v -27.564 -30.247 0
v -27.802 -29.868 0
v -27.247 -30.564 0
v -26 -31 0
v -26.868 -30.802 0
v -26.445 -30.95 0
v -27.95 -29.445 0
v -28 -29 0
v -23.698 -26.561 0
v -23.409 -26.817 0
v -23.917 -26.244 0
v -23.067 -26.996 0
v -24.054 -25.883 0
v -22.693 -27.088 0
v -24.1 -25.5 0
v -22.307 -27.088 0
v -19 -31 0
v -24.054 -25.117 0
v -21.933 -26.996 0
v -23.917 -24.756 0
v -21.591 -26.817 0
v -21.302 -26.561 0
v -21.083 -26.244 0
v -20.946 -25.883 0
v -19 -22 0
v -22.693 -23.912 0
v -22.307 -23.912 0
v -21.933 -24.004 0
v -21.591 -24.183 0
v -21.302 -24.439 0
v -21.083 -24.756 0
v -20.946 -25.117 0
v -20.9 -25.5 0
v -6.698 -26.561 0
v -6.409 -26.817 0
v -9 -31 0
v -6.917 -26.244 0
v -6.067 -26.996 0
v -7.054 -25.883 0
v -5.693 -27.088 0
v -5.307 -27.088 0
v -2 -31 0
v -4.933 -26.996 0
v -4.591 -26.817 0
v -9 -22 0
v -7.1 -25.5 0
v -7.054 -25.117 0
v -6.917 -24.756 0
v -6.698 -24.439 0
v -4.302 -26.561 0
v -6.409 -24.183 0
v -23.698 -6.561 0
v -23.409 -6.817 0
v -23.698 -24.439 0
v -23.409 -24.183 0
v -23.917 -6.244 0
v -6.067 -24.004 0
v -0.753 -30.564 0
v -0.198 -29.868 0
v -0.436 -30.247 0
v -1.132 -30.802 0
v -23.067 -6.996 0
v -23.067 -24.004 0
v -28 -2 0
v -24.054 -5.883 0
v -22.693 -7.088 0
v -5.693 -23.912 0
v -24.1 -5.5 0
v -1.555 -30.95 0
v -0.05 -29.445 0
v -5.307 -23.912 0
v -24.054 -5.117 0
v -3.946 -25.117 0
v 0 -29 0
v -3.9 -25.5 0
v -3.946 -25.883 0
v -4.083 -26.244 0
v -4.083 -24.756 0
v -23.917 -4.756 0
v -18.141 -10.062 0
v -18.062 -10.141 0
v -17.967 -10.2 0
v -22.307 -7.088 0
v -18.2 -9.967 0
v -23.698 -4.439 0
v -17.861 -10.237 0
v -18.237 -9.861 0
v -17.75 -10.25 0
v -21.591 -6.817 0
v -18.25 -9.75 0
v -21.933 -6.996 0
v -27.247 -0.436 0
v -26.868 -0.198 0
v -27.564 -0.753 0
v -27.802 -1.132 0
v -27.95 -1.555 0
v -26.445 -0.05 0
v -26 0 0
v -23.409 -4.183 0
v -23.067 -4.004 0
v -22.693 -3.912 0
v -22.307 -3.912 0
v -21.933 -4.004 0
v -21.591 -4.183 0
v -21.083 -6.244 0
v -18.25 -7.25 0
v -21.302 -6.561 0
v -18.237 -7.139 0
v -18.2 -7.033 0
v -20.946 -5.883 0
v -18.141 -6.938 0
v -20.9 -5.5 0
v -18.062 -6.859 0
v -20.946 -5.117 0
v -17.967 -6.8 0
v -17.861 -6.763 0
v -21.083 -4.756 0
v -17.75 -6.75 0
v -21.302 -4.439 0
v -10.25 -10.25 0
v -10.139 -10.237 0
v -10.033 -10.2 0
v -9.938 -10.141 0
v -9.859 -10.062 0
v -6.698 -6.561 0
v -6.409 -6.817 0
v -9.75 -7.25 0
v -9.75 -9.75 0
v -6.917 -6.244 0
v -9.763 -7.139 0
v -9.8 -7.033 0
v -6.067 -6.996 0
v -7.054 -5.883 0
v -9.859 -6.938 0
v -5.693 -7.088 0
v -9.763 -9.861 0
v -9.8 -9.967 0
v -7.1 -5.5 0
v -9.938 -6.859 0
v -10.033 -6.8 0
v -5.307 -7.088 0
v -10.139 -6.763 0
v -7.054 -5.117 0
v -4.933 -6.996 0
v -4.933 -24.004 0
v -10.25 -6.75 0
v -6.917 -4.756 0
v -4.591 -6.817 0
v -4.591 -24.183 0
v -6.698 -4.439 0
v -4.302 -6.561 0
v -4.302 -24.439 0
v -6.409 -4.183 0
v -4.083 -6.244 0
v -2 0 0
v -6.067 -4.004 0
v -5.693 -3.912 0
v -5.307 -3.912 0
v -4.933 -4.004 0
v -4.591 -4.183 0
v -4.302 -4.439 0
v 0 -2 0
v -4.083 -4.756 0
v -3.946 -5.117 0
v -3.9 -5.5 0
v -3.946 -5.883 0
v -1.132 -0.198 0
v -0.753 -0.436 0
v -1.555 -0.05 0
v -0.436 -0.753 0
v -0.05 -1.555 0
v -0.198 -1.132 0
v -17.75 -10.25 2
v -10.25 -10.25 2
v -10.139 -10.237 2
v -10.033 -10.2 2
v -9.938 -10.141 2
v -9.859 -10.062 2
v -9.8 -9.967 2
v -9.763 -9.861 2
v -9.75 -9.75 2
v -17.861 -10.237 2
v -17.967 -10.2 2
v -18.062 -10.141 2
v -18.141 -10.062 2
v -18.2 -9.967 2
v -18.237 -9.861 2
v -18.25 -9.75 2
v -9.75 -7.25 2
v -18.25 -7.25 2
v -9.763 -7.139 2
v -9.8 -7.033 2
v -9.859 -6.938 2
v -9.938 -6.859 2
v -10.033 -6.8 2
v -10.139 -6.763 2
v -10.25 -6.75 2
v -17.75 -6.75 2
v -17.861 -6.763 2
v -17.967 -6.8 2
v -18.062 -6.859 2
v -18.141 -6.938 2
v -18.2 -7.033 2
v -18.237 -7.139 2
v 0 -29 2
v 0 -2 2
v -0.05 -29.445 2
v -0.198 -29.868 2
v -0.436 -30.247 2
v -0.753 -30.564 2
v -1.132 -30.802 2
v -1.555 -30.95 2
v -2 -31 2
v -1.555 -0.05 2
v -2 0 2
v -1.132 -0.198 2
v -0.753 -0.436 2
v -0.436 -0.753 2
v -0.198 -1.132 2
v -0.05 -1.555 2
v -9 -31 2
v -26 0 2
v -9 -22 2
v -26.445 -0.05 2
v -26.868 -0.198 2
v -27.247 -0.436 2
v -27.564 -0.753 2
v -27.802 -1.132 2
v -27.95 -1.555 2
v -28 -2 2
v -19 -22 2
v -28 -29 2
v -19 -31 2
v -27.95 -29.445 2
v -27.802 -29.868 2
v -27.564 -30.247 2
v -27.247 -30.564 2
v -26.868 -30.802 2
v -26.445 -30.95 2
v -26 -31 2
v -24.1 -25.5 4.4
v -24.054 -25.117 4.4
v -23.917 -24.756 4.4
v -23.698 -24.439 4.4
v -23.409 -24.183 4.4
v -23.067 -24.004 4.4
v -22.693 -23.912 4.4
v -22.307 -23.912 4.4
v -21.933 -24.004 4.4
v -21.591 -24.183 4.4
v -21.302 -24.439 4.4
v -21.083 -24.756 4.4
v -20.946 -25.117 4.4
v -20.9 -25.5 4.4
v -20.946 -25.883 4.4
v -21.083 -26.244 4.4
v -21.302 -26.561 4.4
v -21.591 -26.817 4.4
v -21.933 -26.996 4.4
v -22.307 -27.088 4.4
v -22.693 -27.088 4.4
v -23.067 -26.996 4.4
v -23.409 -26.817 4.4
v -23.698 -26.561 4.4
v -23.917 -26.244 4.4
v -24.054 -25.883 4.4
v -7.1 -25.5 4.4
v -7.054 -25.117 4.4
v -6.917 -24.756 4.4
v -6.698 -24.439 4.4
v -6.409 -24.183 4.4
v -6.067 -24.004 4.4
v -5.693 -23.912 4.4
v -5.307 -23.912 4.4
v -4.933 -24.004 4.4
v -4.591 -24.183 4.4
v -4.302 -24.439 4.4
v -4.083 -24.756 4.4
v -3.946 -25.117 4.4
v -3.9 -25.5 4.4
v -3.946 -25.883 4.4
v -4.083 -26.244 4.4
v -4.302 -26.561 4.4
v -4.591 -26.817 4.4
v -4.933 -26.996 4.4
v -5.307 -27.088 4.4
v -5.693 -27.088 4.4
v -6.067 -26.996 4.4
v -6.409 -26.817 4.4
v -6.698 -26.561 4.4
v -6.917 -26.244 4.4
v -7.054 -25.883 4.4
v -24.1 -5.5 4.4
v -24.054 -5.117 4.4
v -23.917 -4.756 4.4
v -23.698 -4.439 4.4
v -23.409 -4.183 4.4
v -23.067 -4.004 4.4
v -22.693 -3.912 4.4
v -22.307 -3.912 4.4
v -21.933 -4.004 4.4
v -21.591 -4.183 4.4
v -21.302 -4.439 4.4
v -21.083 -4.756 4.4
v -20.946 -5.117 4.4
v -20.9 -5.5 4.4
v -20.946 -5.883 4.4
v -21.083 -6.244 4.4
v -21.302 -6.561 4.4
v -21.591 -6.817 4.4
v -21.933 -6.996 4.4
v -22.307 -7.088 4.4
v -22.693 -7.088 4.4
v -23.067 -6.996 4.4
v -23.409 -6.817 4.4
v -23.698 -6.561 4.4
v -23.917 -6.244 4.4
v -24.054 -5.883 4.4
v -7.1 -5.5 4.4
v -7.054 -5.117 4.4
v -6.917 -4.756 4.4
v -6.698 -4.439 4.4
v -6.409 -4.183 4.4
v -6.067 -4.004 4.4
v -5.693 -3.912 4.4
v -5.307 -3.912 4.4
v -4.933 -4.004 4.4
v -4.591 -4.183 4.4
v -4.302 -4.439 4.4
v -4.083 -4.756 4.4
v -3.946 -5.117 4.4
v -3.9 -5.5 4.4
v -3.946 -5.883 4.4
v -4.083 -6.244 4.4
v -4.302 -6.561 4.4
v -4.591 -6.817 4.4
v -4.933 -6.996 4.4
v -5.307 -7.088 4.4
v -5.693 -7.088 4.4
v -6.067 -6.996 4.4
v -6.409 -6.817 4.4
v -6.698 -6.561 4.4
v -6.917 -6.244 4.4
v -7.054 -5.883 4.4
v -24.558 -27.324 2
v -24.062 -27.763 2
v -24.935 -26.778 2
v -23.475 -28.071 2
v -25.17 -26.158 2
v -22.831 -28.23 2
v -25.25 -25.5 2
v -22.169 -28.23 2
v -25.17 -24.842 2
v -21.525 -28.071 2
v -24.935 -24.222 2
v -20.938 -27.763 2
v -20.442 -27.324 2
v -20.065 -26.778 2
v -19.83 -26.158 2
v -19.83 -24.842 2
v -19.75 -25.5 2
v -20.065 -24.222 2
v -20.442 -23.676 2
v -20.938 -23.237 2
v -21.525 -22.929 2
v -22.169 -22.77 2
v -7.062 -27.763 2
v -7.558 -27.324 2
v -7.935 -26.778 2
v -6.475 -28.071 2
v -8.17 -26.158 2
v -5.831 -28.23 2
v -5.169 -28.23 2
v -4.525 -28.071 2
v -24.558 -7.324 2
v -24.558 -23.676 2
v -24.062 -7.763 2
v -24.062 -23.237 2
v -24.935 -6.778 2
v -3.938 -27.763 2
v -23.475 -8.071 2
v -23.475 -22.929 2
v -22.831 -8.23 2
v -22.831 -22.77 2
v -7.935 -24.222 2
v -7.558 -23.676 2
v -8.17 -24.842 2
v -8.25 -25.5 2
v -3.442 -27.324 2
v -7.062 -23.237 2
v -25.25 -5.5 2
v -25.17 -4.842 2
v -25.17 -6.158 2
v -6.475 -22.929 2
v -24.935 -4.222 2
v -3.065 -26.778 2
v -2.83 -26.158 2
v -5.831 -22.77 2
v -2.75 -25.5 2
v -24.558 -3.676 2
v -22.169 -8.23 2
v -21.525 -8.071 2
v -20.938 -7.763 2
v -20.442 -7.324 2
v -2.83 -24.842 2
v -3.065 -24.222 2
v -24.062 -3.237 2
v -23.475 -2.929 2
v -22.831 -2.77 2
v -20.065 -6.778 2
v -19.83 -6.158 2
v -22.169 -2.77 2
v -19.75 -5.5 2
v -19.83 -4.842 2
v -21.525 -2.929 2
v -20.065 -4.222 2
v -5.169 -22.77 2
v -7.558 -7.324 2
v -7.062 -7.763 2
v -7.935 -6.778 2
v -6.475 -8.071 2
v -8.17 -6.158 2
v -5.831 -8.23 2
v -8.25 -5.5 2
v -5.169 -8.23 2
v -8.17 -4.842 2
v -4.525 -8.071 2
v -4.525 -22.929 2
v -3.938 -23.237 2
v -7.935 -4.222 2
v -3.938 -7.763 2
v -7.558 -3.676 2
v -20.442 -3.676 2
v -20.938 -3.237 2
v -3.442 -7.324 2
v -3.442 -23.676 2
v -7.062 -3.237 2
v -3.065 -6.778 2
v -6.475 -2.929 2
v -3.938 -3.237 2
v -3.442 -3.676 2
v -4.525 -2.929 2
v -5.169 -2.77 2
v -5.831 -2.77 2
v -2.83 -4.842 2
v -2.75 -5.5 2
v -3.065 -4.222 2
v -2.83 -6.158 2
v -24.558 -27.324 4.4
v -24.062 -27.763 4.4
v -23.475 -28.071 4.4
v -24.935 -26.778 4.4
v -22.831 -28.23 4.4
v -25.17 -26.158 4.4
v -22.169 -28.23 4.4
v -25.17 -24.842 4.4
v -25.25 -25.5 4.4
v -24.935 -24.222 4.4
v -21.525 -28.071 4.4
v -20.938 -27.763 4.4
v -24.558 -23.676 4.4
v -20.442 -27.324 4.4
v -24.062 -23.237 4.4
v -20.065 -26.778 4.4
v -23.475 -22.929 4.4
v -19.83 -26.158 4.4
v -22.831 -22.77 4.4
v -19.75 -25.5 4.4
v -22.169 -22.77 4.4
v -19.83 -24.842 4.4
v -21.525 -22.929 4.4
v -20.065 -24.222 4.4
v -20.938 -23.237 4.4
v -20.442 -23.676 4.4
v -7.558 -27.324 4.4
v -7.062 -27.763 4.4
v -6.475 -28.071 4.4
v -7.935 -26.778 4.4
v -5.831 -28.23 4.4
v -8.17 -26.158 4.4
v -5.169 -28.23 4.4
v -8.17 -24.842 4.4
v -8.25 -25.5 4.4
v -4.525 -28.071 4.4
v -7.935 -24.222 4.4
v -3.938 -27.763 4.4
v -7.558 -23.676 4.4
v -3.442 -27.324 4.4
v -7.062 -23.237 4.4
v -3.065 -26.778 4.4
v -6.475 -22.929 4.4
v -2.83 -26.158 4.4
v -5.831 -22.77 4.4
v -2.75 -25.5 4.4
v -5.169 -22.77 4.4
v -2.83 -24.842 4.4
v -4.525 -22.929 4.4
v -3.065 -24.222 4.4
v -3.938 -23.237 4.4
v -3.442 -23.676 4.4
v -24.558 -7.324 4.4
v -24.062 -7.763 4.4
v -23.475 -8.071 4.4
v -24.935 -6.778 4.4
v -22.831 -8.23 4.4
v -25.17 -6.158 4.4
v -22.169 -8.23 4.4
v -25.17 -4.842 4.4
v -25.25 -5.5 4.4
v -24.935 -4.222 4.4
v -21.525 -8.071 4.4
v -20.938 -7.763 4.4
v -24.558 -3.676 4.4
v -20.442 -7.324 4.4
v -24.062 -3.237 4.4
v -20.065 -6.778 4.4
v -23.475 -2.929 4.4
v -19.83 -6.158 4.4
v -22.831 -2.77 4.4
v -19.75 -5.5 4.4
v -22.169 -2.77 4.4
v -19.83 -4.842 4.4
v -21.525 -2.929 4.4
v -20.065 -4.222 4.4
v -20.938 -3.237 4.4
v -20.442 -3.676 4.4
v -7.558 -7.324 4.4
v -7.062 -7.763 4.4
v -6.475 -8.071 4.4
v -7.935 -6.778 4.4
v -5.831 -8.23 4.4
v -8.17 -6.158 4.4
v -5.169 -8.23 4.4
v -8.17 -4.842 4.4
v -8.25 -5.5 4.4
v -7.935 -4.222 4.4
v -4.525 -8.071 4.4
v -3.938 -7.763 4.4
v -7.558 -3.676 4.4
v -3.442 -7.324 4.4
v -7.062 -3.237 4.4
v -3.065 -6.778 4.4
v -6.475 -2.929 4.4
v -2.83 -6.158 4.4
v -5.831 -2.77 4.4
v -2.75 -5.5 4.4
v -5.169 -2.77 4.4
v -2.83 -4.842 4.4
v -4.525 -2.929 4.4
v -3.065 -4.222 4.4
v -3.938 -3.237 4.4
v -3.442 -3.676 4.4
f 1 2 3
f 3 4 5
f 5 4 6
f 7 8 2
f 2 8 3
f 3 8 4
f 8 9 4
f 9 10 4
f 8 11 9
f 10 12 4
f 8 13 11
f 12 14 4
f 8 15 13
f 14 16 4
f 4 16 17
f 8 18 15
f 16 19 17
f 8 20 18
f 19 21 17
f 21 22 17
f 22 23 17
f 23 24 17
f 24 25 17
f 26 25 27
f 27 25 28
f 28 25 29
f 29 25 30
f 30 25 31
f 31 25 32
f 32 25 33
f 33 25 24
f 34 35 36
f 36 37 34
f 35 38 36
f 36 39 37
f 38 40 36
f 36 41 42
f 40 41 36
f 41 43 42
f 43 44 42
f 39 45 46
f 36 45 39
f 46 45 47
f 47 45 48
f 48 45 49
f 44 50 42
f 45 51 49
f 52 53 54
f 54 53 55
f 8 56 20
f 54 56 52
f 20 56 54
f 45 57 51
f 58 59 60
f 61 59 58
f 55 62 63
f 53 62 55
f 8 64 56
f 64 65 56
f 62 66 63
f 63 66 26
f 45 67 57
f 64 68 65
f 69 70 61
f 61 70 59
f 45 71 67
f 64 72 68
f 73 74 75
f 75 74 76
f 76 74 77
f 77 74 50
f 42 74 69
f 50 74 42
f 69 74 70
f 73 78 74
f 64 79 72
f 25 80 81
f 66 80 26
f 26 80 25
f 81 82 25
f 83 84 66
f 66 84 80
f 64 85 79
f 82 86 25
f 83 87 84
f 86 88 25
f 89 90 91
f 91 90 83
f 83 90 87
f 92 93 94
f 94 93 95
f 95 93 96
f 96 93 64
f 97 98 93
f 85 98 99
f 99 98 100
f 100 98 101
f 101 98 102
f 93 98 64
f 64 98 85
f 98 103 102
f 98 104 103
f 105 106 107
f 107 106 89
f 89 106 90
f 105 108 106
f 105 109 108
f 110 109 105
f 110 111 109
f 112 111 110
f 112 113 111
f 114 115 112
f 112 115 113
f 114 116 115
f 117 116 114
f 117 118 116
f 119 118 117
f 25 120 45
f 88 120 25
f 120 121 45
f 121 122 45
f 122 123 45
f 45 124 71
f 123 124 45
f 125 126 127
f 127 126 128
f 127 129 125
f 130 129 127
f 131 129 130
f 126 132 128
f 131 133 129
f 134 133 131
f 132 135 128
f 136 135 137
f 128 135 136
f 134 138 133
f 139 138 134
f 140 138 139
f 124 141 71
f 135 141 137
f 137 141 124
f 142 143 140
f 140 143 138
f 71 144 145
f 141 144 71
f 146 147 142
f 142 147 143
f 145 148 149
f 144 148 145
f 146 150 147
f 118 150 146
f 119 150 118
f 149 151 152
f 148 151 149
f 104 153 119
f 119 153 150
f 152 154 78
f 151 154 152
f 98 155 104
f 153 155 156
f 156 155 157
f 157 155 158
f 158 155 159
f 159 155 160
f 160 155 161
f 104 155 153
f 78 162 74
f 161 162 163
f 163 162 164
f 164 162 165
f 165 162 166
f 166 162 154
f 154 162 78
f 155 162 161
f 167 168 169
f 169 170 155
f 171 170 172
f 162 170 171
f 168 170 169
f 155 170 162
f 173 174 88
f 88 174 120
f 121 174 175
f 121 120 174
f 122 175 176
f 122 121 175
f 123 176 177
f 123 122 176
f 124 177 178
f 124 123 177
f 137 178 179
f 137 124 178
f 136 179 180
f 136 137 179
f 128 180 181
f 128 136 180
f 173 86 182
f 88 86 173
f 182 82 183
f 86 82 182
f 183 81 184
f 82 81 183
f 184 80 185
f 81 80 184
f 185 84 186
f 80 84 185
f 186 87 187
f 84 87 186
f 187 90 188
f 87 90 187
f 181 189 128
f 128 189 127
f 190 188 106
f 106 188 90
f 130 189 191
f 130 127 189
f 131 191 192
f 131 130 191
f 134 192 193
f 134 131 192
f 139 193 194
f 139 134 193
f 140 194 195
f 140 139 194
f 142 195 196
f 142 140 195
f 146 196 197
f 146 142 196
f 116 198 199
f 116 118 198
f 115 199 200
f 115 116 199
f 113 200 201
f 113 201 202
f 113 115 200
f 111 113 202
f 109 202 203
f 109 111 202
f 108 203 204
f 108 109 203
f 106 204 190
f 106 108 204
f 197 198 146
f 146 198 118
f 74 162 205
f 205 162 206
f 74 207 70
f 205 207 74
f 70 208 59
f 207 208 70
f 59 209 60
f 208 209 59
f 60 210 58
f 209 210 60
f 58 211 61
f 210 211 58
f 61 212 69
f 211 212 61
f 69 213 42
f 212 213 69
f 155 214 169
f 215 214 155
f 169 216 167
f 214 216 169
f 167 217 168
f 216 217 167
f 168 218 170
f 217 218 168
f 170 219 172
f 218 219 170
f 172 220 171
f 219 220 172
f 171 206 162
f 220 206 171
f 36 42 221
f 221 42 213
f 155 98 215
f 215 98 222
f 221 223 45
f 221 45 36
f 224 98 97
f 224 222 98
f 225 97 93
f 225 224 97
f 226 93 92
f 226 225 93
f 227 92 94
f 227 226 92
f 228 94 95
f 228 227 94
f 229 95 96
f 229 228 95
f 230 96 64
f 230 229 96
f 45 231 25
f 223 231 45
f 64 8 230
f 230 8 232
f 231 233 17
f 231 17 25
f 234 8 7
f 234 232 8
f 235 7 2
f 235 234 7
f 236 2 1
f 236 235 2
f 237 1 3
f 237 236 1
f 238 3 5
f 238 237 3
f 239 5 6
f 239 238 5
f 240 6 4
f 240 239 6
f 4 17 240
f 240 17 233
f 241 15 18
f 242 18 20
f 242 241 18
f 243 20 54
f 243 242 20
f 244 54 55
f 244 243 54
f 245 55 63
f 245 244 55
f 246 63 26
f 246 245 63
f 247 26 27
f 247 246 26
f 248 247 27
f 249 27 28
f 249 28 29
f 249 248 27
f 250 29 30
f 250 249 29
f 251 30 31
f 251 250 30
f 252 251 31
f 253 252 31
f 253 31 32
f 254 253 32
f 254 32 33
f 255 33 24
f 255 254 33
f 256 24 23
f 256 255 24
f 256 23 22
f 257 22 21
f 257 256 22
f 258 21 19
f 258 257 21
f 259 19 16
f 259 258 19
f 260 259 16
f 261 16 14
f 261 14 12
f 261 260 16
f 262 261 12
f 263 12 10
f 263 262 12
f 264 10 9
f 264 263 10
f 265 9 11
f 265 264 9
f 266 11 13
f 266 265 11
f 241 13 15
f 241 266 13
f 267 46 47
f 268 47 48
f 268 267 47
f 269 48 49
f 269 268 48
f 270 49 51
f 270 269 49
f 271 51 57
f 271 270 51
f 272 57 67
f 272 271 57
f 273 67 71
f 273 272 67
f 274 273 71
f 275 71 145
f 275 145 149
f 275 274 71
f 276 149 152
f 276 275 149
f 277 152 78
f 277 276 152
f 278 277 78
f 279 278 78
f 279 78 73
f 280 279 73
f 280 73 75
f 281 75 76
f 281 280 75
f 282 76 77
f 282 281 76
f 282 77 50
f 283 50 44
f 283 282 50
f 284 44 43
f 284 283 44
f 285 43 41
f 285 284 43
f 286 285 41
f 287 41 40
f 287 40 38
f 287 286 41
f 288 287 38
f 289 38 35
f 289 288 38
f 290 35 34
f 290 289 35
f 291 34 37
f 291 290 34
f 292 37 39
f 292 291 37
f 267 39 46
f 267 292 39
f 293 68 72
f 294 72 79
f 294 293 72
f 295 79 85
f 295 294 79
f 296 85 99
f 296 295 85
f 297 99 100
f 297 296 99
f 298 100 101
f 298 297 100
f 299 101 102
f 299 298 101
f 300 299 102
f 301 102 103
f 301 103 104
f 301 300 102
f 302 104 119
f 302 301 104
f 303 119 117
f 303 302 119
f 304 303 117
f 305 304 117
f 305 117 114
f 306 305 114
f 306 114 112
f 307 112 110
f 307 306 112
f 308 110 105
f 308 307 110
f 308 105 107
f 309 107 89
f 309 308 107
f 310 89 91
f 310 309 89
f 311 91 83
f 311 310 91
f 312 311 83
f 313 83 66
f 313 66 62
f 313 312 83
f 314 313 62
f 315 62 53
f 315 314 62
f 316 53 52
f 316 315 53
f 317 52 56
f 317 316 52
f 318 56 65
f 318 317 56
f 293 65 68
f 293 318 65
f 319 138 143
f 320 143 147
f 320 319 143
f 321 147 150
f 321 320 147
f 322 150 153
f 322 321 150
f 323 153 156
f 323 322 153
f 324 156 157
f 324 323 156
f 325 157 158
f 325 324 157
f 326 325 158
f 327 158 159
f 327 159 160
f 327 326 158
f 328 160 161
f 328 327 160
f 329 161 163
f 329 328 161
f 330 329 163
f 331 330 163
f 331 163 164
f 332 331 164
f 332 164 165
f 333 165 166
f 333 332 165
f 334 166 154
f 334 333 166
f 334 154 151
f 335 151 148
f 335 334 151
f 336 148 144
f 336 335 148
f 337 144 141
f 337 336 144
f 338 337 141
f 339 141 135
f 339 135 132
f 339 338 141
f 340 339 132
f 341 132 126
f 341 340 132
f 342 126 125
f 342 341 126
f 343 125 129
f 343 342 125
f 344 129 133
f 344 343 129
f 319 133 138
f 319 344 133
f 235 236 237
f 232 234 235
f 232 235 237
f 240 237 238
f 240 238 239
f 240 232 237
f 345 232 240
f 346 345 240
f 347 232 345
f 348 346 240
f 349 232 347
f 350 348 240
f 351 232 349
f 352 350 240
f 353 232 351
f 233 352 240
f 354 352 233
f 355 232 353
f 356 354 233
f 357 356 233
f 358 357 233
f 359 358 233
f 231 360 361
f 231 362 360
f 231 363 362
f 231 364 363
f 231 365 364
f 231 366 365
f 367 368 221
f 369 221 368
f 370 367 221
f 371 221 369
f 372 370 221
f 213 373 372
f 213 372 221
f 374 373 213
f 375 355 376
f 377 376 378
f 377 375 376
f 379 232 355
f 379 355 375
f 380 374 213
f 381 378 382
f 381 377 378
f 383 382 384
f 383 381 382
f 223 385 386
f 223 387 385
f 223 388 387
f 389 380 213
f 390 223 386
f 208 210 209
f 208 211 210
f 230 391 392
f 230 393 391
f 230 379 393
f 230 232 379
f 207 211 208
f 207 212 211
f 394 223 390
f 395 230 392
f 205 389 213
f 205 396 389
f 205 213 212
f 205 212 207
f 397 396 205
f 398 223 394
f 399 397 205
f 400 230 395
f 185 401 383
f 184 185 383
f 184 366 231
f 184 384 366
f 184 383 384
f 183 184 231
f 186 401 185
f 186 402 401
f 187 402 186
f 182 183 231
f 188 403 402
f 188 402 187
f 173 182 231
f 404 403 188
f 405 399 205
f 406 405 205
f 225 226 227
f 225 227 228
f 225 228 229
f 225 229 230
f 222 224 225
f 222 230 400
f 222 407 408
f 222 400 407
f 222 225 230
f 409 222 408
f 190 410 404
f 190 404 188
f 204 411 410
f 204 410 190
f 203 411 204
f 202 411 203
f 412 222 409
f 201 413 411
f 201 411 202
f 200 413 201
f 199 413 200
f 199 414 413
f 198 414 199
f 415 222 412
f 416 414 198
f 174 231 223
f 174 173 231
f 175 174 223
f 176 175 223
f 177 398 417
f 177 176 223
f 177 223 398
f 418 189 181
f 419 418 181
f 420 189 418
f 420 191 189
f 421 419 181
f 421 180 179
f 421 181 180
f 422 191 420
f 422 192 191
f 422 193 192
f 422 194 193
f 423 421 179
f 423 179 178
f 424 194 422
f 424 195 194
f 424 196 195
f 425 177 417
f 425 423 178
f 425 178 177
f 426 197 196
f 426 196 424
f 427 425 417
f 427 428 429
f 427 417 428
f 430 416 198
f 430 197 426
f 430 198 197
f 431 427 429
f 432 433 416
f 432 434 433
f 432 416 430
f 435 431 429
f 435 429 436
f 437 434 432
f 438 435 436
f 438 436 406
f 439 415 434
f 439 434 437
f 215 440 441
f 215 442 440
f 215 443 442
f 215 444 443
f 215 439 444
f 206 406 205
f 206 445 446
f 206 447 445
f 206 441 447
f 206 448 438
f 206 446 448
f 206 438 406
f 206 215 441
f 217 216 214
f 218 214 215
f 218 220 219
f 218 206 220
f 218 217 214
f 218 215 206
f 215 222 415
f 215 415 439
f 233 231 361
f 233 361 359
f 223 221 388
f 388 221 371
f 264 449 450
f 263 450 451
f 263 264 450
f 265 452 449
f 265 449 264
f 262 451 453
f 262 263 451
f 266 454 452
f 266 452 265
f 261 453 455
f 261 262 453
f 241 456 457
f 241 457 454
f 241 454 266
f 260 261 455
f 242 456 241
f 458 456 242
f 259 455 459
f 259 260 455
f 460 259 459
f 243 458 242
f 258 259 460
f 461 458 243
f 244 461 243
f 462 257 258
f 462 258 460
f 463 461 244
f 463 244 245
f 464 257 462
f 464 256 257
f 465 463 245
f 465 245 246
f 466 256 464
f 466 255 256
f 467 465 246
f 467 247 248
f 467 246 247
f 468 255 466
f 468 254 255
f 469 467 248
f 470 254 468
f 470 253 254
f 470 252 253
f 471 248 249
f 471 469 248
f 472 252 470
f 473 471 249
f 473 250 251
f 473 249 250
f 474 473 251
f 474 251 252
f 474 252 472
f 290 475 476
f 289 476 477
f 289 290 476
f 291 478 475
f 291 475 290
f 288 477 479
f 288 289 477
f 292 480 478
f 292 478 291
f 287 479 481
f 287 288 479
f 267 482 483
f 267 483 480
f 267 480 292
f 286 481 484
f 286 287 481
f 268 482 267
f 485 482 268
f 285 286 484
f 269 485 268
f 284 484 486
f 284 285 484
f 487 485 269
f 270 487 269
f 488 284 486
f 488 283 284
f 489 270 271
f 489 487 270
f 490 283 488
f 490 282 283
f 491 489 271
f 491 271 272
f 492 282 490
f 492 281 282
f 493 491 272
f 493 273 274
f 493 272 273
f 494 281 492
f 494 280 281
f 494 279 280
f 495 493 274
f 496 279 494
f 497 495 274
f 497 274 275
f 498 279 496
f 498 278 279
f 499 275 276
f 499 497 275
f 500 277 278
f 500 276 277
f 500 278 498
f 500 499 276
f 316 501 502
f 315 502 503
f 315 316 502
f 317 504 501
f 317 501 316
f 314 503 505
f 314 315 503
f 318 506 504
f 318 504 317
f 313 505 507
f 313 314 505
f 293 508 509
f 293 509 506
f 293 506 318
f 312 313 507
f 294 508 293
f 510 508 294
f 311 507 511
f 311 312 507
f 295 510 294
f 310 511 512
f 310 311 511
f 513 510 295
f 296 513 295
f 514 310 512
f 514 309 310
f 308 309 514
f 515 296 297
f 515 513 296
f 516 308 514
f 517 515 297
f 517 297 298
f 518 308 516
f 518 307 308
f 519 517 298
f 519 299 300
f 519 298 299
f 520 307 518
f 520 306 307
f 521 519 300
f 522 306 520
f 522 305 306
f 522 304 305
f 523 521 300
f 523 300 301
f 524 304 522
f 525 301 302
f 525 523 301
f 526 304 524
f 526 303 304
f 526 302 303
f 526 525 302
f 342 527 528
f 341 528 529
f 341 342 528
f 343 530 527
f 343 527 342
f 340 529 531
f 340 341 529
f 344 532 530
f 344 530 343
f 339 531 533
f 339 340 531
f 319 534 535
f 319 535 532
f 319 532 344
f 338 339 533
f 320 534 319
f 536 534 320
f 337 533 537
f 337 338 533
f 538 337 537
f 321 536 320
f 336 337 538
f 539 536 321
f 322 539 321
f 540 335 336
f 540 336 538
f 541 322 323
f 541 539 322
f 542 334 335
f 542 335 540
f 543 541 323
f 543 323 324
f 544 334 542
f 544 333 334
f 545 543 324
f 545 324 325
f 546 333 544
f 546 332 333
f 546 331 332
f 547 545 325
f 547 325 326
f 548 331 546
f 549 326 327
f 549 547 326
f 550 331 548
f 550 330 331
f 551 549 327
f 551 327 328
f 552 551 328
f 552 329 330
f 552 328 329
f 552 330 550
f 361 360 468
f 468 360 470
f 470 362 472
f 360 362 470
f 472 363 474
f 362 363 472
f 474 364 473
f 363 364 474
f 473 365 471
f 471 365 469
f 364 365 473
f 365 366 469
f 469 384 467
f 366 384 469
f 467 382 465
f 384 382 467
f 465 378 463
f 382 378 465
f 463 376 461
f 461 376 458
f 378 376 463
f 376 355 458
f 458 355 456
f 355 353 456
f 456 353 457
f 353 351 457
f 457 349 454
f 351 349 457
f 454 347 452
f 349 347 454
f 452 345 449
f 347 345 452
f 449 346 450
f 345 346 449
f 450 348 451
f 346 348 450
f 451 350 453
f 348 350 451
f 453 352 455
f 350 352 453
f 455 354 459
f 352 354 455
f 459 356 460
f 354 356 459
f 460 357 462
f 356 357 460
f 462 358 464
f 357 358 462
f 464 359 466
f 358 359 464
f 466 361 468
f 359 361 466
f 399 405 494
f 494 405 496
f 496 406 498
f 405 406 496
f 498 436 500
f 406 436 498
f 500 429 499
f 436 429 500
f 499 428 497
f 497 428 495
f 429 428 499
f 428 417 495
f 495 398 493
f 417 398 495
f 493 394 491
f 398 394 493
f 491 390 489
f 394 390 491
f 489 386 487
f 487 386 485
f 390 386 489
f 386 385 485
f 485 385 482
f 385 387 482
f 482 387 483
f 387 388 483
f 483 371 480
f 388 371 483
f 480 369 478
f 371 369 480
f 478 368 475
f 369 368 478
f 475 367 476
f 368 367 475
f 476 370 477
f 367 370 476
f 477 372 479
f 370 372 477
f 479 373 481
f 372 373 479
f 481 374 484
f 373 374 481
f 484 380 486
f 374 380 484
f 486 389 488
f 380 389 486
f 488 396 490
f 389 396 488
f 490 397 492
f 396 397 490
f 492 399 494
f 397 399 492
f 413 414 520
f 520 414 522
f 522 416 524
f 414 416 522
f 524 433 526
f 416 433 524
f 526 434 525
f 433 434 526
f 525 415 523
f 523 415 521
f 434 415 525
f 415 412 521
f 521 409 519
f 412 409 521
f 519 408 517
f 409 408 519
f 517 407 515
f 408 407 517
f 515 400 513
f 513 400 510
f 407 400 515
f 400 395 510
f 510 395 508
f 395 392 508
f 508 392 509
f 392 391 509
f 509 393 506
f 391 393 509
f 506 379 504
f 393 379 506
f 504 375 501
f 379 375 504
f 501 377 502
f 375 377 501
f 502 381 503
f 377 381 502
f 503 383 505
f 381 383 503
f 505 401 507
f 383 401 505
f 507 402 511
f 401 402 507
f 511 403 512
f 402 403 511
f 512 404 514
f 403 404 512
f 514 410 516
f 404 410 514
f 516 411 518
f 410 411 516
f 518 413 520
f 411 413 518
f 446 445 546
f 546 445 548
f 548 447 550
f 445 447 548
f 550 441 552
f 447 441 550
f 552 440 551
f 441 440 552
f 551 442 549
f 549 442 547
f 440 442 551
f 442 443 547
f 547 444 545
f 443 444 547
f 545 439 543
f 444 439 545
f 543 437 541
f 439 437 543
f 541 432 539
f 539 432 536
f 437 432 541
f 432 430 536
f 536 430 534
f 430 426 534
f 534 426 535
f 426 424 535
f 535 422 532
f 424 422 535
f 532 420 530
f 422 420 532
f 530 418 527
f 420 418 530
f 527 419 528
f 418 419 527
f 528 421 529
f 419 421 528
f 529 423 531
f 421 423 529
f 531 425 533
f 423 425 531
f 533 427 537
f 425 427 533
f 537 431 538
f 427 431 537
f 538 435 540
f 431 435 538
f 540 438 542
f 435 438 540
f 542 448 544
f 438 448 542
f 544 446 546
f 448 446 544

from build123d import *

# Parameters (mm, degrees)
SKETCH004_W     = 28
SKETCH004_H     = 31
PAD001_DEPTH    = 2
SKETCH005_R     = 2.75
PAD002_DEPTH    = 2.4
SKETCH006_R     = 1.6
HOLE001_DEPTH   = 25
SKETCH_W        = 10
SKETCH_H        = 9
POCKET_DEPTH    = 5
FILLET_R        = 2
SKETCH007_W     = 8.5
SKETCH007_H     = 3.5
POCKET001_DEPTH = 2
FILLET001_R     = 0.5


with BuildPart() as part:
    # Sketch004 → Pad001 (new body)
    with BuildSketch(Plane.XY):
        with Locations((-14, -15.5)):
            Rectangle(SKETCH004_W, SKETCH004_H)
    extrude(amount=PAD001_DEPTH)

    # Sketch005 (on Face6 of Pad001) → Pad002 (join)
    with BuildSketch(Plane.XY.offset(2)):
        with Locations((-22.5, -5.5)):
            Circle(SKETCH005_R)
        with Locations((-5.5, -5.5)):
            Circle(SKETCH005_R)
        with Locations((-22.5, -25.5)):
            Circle(SKETCH005_R)
        with Locations((-5.5, -25.5)):
            Circle(SKETCH005_R)
    extrude(amount=PAD002_DEPTH)

    # Sketch006 (on Face4 of Pad002) → Hole001 (cut)
    with BuildSketch(Plane(origin=(0, 0, 0), x_dir=(1, 0, 0), z_dir=(0, 0, -1))):
        with Locations((-22.5, 25.5)):
            Circle(SKETCH006_R)
        with Locations((-5.5, 25.5)):
            Circle(SKETCH006_R)
        with Locations((-5.5, 5.5)):
            Circle(SKETCH006_R)
        with Locations((-22.5, 5.5)):
            Circle(SKETCH006_R)
    extrude(amount=-HOLE001_DEPTH, mode=Mode.SUBTRACT)

    # Sketch (on Face5 of Hole001) → Pocket (cut)
    with BuildSketch(Plane.XY.offset(2)):
        with Locations((-14, -26.5)):
            Rectangle(SKETCH_W, SKETCH_H)
    extrude(amount=-POCKET_DEPTH, mode=Mode.SUBTRACT)

    # Fillet
    fillet_edges = [part.edges().sort_by_distance(p)[0] for p in [
        (0, 0, 1),
        (0, -31, 1),
        (-28, 0, 1),
        (-28, -31, 1),
    ]]
    fillet(fillet_edges, radius=FILLET_R)

    # Sketch007 (on Face5 of Fillet) → Pocket001 (cut)
    with BuildSketch(Plane.XY.offset(2)):
        with Locations((-14, -8.5)):
            Rectangle(SKETCH007_W, SKETCH007_H)
    extrude(amount=-POCKET001_DEPTH, mode=Mode.SUBTRACT)

    # Fillet001
    fillet001_edges = [part.edges().sort_by_distance(p)[0] for p in [
        (-9.75, -6.75, 1),
        (-9.75, -10.25, 1),
        (-18.25, -10.25, 1),
        (-18.25, -6.75, 1),
    ]]
    fillet(fillet001_edges, radius=FILLET001_R)


solid = part.part
